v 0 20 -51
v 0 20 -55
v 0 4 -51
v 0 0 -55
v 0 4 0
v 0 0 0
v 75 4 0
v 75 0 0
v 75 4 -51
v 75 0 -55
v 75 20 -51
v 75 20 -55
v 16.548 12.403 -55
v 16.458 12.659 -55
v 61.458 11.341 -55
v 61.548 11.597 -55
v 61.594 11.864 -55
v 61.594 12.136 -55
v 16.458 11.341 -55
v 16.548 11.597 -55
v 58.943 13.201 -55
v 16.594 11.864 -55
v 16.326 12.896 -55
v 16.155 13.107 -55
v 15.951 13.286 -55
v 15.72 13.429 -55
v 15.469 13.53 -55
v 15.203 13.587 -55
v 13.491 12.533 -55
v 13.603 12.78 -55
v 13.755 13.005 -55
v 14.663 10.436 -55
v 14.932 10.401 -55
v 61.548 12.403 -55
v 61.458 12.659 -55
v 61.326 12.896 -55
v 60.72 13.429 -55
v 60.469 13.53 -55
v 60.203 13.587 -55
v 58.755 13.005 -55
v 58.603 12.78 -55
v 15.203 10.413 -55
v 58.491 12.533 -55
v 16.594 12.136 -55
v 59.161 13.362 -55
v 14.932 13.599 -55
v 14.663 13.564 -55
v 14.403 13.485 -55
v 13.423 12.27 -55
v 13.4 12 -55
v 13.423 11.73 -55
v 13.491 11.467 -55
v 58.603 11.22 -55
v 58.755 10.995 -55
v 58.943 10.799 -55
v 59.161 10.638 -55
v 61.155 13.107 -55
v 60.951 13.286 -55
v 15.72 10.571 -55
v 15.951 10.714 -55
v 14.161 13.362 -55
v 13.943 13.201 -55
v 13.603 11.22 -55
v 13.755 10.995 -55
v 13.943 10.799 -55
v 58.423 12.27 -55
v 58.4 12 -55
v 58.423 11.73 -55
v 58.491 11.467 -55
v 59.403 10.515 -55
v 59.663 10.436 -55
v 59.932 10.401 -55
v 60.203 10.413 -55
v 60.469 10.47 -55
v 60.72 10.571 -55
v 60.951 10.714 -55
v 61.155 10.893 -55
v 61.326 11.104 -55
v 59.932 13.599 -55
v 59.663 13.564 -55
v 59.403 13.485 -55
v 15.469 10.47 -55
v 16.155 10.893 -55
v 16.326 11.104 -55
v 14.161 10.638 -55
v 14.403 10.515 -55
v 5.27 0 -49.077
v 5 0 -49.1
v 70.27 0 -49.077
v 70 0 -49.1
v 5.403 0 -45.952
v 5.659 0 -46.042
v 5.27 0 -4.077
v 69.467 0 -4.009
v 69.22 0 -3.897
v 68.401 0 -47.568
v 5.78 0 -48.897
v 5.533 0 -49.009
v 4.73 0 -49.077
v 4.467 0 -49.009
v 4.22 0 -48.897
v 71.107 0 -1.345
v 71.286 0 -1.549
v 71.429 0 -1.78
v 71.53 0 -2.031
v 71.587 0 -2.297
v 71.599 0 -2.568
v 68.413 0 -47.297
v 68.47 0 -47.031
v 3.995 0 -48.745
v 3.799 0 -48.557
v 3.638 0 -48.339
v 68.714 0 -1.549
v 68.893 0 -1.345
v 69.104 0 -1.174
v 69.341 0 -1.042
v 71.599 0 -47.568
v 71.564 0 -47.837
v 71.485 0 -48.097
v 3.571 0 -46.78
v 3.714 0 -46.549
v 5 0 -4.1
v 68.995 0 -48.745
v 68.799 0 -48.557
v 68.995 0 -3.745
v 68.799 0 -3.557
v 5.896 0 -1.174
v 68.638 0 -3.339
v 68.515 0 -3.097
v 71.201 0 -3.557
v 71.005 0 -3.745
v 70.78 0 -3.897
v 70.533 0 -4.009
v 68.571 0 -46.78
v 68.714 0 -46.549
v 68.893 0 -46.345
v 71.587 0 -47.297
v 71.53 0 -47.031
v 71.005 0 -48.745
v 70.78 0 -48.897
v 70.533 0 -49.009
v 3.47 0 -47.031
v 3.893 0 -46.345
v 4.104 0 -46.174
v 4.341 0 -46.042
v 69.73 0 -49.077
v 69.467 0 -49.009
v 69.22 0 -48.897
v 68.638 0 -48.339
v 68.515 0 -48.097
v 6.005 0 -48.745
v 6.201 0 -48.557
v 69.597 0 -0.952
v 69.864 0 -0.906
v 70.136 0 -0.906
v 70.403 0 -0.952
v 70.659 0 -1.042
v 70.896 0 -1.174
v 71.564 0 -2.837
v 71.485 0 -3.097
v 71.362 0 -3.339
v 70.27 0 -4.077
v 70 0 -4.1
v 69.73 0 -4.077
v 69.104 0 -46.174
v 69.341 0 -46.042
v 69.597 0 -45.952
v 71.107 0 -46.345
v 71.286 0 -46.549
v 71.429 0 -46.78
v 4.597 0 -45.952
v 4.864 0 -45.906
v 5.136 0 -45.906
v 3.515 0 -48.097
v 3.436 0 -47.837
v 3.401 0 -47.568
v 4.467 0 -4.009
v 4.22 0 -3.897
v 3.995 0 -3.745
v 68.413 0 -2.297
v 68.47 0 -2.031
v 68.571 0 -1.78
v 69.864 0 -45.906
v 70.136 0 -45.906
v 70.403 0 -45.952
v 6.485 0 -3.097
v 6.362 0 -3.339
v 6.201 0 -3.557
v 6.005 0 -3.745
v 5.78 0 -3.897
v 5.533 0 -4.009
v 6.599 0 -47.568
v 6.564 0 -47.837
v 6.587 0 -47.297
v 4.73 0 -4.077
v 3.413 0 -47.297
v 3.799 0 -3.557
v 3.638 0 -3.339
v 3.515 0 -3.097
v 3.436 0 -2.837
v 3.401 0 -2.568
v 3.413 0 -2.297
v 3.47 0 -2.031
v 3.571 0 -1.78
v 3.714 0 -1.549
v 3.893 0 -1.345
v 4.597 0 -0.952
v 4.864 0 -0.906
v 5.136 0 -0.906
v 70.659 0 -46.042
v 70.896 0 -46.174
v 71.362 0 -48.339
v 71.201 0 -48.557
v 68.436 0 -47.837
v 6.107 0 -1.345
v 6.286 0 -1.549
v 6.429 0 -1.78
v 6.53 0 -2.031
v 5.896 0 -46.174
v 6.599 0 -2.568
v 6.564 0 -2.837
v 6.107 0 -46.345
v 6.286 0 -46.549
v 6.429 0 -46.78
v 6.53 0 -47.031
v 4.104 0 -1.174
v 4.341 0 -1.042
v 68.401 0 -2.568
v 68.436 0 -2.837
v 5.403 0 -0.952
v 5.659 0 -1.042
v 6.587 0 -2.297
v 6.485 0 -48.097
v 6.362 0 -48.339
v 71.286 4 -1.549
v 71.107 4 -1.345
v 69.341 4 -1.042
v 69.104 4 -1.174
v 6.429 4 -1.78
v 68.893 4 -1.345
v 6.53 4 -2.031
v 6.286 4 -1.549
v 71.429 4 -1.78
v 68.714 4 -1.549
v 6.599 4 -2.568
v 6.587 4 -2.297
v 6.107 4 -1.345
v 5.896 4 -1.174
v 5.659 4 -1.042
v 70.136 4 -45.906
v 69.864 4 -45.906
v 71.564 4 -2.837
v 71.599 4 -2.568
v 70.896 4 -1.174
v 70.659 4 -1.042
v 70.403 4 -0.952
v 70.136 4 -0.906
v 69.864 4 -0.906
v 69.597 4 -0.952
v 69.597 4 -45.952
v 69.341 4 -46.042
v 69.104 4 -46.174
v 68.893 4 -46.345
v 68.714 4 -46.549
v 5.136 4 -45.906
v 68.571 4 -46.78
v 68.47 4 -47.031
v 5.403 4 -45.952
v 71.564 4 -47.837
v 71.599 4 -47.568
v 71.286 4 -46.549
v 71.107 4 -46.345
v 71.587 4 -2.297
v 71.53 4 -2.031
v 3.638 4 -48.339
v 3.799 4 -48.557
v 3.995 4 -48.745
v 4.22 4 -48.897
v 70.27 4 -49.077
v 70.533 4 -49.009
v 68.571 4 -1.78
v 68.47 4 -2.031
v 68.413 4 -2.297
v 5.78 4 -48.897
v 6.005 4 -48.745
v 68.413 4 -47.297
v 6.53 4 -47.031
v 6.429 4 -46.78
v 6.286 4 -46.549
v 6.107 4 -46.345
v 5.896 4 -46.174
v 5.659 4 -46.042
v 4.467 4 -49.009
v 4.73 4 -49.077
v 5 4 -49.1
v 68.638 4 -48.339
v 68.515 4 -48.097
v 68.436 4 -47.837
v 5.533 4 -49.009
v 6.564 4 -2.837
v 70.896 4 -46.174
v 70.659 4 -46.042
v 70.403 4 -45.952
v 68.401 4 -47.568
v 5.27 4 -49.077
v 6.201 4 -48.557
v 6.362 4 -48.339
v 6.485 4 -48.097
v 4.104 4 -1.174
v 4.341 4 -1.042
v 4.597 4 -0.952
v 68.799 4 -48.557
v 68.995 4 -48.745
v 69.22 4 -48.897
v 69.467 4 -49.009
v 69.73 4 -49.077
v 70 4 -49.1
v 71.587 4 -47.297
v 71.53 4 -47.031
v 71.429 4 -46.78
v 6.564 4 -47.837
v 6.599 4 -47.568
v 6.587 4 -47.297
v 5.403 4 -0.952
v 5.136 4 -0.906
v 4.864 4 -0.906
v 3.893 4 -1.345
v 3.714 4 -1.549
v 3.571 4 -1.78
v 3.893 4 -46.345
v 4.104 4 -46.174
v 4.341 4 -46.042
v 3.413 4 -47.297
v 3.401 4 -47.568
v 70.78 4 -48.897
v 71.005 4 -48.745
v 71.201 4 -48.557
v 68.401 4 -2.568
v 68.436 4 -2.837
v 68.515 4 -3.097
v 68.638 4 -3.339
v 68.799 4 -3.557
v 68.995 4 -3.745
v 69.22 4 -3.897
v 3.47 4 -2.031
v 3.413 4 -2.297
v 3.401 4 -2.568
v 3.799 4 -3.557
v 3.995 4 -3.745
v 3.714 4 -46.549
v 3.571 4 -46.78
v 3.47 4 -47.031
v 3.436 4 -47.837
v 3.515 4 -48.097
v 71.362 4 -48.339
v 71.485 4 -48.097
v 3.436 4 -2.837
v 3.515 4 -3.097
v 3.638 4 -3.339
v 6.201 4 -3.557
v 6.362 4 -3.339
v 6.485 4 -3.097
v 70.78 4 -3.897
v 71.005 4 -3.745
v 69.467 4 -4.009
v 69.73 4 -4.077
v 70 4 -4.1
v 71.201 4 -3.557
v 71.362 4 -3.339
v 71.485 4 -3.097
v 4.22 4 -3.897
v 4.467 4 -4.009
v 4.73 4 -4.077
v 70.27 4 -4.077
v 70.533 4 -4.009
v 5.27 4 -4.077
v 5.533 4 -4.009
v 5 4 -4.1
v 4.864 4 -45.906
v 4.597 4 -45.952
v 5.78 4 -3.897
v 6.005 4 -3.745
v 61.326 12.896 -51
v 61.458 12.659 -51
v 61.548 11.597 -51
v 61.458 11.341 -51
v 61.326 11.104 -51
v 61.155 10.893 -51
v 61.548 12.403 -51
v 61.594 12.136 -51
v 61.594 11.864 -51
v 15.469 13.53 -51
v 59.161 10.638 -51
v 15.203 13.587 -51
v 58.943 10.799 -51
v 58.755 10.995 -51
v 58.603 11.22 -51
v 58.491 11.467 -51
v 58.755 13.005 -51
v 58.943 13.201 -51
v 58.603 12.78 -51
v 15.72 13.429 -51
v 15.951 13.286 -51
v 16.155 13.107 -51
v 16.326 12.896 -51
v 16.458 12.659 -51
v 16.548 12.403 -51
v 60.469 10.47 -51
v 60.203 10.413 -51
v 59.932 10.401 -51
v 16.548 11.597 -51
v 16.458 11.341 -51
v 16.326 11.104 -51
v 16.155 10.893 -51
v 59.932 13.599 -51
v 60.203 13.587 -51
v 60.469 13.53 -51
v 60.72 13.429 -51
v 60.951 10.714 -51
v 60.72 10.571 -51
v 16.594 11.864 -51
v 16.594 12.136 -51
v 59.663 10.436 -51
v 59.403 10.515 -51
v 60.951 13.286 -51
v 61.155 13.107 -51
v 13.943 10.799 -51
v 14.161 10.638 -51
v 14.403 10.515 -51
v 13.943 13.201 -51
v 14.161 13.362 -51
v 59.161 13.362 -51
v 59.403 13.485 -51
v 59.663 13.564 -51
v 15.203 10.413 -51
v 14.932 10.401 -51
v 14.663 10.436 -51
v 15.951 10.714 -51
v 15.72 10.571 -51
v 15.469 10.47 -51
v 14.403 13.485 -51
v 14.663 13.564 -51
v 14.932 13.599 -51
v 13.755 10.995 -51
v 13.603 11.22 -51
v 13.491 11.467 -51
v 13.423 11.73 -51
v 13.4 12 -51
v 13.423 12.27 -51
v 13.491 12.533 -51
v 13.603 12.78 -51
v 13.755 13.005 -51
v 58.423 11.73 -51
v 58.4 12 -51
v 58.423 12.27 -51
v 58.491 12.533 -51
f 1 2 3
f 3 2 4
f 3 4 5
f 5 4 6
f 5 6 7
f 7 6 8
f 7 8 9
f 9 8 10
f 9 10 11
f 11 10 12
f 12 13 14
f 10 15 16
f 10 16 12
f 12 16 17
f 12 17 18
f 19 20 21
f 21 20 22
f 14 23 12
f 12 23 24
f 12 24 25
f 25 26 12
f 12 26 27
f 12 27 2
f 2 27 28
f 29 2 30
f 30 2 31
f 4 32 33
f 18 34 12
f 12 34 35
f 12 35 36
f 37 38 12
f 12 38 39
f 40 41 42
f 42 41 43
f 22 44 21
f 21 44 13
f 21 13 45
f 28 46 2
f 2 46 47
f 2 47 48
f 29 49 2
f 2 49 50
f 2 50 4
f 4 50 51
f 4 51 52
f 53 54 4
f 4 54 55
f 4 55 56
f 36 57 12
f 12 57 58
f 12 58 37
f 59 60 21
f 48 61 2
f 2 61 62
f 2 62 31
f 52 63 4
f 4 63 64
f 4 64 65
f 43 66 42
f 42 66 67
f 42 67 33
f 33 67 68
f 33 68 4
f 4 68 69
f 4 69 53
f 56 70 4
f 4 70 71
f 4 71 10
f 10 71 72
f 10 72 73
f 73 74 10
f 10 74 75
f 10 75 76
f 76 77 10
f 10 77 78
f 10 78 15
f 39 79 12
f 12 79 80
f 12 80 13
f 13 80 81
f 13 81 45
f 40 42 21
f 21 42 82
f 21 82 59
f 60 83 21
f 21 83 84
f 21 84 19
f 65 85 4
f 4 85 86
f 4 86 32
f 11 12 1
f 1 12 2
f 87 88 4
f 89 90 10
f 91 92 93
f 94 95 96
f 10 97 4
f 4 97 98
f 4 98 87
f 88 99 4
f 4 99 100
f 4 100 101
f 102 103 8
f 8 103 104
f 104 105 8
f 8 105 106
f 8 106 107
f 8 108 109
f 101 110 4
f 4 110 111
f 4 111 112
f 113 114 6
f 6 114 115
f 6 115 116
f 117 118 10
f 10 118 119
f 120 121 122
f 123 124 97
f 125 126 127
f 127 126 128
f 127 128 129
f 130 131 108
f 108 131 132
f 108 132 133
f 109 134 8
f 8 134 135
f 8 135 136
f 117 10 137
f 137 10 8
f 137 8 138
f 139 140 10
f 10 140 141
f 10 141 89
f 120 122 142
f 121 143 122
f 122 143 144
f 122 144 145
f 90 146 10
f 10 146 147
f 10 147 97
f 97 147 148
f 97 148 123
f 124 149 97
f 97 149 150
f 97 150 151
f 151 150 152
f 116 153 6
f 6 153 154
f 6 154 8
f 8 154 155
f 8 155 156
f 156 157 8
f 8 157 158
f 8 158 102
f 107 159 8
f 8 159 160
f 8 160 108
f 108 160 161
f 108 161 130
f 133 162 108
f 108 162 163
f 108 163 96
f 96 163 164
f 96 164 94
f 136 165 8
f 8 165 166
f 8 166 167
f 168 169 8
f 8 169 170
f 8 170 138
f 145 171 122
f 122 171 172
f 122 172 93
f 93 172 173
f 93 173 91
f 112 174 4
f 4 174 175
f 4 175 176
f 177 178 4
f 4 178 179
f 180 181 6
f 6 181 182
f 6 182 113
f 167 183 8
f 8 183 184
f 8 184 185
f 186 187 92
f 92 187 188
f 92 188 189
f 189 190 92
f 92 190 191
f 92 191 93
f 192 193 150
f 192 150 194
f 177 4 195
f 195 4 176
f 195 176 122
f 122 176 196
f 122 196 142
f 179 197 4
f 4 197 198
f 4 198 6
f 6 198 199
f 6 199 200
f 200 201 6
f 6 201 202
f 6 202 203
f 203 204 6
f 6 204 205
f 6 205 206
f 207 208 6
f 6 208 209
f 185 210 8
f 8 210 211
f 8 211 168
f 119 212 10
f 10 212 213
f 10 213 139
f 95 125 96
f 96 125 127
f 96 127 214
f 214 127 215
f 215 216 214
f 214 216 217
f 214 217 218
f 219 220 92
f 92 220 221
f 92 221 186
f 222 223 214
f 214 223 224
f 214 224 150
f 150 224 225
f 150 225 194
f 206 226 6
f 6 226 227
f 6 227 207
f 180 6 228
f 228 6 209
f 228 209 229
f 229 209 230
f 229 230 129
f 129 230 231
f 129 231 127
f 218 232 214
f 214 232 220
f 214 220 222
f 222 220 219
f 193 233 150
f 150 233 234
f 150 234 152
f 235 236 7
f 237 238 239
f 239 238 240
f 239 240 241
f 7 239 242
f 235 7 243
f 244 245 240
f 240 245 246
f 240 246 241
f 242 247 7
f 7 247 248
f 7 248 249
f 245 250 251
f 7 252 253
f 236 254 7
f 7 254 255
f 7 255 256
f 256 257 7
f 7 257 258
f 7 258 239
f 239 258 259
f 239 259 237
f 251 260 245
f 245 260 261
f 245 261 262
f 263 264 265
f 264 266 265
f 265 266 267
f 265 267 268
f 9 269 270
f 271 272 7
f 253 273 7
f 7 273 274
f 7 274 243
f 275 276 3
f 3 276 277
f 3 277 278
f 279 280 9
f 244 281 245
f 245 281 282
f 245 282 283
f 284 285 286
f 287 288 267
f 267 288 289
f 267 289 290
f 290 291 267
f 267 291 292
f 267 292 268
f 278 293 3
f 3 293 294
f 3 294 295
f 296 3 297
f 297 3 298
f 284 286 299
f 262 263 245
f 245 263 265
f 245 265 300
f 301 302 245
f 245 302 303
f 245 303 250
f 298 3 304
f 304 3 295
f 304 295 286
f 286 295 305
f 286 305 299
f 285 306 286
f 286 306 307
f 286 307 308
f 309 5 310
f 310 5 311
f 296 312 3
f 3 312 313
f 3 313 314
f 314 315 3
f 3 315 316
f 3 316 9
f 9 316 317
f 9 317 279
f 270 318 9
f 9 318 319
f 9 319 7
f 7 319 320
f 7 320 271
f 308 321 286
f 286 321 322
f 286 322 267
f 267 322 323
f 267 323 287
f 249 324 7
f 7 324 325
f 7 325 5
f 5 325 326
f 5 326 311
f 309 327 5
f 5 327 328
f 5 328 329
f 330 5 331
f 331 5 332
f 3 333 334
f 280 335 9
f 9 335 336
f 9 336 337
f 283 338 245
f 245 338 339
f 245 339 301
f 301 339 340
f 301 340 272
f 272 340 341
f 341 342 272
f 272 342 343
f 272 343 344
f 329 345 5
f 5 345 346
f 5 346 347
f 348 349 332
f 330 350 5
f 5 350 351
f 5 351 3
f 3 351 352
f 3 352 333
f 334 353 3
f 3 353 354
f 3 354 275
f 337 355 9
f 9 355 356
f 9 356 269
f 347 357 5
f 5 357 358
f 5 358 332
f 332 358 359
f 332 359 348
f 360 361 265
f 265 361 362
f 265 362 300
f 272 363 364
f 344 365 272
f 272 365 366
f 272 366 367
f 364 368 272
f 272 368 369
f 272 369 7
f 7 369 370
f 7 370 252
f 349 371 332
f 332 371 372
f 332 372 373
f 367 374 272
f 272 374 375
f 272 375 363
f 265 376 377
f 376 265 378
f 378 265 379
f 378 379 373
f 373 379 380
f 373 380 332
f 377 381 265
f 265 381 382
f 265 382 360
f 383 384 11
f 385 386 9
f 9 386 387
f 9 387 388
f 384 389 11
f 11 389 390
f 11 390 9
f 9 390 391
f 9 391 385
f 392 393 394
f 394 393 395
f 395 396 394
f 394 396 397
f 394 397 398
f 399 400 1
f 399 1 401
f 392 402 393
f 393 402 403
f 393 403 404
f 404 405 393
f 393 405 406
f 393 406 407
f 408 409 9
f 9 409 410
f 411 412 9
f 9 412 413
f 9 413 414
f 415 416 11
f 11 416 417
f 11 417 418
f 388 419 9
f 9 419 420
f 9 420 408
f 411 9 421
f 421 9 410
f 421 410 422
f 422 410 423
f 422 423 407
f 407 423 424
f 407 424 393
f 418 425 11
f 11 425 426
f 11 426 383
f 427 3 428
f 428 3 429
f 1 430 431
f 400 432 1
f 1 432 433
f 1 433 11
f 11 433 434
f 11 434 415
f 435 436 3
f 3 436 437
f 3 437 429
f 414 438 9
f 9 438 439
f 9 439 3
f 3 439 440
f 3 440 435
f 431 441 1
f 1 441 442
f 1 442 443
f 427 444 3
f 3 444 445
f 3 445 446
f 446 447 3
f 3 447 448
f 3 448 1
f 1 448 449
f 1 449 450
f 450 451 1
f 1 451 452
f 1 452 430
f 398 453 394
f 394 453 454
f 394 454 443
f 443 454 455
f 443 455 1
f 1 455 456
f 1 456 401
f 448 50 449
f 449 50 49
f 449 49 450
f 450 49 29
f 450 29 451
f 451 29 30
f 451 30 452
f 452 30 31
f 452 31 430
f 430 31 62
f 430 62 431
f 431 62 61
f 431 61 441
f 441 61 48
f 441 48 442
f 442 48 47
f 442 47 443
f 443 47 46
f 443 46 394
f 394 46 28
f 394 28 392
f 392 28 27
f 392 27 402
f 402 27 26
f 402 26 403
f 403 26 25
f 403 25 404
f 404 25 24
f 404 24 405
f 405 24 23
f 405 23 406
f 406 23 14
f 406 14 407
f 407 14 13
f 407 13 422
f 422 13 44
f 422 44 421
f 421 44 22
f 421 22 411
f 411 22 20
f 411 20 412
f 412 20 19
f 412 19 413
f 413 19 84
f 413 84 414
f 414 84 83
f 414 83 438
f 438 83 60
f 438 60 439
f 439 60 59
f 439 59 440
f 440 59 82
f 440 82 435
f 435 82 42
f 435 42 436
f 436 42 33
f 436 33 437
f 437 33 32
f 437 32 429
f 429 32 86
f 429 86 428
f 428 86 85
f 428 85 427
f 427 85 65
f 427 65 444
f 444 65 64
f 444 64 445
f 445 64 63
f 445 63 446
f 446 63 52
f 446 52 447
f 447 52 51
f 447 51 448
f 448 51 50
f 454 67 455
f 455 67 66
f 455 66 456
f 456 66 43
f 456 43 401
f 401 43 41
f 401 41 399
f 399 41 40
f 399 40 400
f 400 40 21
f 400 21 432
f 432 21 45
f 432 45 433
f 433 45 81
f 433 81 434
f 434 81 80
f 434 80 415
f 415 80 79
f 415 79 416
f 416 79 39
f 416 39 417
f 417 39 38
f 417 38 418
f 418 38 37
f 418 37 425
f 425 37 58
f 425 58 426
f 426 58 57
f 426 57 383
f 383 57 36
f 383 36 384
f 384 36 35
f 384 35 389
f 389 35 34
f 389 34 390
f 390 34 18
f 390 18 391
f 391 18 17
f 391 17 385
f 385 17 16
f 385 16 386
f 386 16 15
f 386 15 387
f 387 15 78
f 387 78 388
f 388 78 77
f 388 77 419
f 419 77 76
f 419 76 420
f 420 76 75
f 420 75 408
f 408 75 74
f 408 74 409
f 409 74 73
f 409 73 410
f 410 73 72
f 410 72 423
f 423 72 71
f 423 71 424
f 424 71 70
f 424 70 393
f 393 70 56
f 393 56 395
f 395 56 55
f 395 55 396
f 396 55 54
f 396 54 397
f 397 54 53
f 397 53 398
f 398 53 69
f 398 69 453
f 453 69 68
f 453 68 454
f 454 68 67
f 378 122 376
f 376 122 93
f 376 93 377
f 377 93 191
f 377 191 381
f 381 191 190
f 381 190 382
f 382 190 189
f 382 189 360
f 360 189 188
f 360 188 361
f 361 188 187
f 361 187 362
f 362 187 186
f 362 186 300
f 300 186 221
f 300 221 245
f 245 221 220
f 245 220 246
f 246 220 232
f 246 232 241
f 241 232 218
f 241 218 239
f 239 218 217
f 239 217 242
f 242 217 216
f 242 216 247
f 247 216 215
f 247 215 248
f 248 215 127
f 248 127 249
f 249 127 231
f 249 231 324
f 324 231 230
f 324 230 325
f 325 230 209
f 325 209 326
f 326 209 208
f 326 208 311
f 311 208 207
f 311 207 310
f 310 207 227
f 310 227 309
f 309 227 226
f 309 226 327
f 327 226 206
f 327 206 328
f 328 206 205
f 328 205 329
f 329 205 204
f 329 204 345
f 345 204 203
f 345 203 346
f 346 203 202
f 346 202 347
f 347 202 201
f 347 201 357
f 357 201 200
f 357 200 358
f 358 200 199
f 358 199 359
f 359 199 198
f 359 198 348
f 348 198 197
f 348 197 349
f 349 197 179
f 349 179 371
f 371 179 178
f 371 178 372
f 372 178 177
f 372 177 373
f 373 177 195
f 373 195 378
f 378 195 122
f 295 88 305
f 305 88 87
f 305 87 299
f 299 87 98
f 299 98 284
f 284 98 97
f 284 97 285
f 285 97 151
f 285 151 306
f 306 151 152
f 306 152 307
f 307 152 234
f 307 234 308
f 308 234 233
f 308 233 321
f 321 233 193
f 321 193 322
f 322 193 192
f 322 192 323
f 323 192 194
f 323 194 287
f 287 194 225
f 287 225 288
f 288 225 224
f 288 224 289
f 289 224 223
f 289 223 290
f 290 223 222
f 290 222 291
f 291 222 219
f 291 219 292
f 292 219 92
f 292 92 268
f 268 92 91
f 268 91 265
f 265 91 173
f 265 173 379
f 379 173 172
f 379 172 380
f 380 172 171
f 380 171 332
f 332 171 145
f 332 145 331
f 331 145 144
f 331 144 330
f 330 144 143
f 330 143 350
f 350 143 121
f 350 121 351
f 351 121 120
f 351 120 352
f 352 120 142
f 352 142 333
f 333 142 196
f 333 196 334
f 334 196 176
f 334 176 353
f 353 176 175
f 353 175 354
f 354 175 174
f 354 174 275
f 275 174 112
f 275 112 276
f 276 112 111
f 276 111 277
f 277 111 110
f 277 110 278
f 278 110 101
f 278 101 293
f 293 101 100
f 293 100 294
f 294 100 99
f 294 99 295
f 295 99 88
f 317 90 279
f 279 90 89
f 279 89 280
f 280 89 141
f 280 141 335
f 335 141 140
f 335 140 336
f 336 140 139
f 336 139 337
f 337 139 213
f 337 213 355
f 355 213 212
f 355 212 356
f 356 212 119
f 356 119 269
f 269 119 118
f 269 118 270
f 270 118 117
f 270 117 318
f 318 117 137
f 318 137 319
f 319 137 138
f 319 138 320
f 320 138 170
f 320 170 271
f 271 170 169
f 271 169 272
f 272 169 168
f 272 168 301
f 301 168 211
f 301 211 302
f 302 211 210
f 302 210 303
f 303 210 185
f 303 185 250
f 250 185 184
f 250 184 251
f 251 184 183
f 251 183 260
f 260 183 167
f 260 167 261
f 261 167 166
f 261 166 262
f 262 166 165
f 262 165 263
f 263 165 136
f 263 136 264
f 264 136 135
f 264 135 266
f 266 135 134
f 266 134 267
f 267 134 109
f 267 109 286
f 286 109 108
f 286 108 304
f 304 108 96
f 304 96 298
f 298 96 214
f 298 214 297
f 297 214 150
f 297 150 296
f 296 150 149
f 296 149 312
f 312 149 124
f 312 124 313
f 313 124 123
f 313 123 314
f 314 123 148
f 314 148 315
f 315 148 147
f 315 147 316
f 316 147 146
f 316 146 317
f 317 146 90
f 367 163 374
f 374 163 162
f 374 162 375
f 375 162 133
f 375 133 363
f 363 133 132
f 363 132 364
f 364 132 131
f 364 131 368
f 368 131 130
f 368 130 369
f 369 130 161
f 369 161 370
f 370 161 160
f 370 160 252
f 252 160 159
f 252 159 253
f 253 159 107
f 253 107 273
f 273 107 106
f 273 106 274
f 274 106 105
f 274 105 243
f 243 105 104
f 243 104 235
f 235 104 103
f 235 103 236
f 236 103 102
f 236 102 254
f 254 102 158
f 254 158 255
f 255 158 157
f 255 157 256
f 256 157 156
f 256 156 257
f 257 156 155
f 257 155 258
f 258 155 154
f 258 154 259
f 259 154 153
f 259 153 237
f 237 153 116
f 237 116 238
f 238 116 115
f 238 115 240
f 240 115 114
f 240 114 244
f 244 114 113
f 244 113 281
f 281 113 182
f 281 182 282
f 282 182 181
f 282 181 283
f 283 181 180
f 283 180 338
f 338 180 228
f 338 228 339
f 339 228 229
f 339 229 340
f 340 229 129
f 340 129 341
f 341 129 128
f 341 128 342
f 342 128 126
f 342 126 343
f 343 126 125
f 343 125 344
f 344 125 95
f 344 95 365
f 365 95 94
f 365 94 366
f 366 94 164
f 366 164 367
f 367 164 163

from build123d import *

# Parameters (mm, degrees)
SKETCH1_W           = 75
SKETCH1_H           = 55
BOSS_EXTRUDE1_DEPTH = 20
SKETCH2_W           = 51
SKETCH2_H           = 16
CUT_EXTRUDE1_DEPTH  = 94
SKETCH3_R           = 1.6
CUT_EXTRUDE2_DEPTH  = 54
SKETCH4_R           = 1.6
CUT_EXTRUDE3_DEPTH  = 10


with BuildPart() as part:
    # Sketch1 → Boss-Extrude1 (new body)
    with BuildSketch(Plane(origin=(0, 0, 0), x_dir=(1, 0, 0), z_dir=(0, 1, 0))):
        with Locations((37.5, 27.5)):
            Rectangle(SKETCH1_W, SKETCH1_H)
    extrude(amount=BOSS_EXTRUDE1_DEPTH)

    # Sketch2 → Cut-Extrude1 (cut)
    with BuildSketch(Plane(origin=(75, 0, 0), x_dir=(0, 0, -1), z_dir=(1, 0, 0))):
        with Locations((25.5, 12)):
            Rectangle(SKETCH2_W, SKETCH2_H)
    extrude(amount=-CUT_EXTRUDE1_DEPTH, mode=Mode.SUBTRACT)

    # Sketch3 → Cut-Extrude2 (cut)
    with BuildSketch(Plane(origin=(0, 0, -55), x_dir=(-1, 0, 0), z_dir=(0, 0, -1))):
        with Locations((-60, 12)):
            Circle(SKETCH3_R)
        with Locations((-15, 12)):
            Circle(SKETCH3_R)
    extrude(amount=-CUT_EXTRUDE2_DEPTH, mode=Mode.SUBTRACT)

    # Sketch4 → Cut-Extrude3 (cut)
    with BuildSketch(Plane.XZ):
        with Locations((5, -2.5)):
            Circle(SKETCH4_R)
        with Locations((5, -47.5)):
            Circle(SKETCH4_R)
        with Locations((70, -47.5)):
            Circle(SKETCH4_R)
        with Locations((70, -2.5)):
            Circle(SKETCH4_R)
    extrude(amount=-CUT_EXTRUDE3_DEPTH, mode=Mode.SUBTRACT)


solid = part.part
